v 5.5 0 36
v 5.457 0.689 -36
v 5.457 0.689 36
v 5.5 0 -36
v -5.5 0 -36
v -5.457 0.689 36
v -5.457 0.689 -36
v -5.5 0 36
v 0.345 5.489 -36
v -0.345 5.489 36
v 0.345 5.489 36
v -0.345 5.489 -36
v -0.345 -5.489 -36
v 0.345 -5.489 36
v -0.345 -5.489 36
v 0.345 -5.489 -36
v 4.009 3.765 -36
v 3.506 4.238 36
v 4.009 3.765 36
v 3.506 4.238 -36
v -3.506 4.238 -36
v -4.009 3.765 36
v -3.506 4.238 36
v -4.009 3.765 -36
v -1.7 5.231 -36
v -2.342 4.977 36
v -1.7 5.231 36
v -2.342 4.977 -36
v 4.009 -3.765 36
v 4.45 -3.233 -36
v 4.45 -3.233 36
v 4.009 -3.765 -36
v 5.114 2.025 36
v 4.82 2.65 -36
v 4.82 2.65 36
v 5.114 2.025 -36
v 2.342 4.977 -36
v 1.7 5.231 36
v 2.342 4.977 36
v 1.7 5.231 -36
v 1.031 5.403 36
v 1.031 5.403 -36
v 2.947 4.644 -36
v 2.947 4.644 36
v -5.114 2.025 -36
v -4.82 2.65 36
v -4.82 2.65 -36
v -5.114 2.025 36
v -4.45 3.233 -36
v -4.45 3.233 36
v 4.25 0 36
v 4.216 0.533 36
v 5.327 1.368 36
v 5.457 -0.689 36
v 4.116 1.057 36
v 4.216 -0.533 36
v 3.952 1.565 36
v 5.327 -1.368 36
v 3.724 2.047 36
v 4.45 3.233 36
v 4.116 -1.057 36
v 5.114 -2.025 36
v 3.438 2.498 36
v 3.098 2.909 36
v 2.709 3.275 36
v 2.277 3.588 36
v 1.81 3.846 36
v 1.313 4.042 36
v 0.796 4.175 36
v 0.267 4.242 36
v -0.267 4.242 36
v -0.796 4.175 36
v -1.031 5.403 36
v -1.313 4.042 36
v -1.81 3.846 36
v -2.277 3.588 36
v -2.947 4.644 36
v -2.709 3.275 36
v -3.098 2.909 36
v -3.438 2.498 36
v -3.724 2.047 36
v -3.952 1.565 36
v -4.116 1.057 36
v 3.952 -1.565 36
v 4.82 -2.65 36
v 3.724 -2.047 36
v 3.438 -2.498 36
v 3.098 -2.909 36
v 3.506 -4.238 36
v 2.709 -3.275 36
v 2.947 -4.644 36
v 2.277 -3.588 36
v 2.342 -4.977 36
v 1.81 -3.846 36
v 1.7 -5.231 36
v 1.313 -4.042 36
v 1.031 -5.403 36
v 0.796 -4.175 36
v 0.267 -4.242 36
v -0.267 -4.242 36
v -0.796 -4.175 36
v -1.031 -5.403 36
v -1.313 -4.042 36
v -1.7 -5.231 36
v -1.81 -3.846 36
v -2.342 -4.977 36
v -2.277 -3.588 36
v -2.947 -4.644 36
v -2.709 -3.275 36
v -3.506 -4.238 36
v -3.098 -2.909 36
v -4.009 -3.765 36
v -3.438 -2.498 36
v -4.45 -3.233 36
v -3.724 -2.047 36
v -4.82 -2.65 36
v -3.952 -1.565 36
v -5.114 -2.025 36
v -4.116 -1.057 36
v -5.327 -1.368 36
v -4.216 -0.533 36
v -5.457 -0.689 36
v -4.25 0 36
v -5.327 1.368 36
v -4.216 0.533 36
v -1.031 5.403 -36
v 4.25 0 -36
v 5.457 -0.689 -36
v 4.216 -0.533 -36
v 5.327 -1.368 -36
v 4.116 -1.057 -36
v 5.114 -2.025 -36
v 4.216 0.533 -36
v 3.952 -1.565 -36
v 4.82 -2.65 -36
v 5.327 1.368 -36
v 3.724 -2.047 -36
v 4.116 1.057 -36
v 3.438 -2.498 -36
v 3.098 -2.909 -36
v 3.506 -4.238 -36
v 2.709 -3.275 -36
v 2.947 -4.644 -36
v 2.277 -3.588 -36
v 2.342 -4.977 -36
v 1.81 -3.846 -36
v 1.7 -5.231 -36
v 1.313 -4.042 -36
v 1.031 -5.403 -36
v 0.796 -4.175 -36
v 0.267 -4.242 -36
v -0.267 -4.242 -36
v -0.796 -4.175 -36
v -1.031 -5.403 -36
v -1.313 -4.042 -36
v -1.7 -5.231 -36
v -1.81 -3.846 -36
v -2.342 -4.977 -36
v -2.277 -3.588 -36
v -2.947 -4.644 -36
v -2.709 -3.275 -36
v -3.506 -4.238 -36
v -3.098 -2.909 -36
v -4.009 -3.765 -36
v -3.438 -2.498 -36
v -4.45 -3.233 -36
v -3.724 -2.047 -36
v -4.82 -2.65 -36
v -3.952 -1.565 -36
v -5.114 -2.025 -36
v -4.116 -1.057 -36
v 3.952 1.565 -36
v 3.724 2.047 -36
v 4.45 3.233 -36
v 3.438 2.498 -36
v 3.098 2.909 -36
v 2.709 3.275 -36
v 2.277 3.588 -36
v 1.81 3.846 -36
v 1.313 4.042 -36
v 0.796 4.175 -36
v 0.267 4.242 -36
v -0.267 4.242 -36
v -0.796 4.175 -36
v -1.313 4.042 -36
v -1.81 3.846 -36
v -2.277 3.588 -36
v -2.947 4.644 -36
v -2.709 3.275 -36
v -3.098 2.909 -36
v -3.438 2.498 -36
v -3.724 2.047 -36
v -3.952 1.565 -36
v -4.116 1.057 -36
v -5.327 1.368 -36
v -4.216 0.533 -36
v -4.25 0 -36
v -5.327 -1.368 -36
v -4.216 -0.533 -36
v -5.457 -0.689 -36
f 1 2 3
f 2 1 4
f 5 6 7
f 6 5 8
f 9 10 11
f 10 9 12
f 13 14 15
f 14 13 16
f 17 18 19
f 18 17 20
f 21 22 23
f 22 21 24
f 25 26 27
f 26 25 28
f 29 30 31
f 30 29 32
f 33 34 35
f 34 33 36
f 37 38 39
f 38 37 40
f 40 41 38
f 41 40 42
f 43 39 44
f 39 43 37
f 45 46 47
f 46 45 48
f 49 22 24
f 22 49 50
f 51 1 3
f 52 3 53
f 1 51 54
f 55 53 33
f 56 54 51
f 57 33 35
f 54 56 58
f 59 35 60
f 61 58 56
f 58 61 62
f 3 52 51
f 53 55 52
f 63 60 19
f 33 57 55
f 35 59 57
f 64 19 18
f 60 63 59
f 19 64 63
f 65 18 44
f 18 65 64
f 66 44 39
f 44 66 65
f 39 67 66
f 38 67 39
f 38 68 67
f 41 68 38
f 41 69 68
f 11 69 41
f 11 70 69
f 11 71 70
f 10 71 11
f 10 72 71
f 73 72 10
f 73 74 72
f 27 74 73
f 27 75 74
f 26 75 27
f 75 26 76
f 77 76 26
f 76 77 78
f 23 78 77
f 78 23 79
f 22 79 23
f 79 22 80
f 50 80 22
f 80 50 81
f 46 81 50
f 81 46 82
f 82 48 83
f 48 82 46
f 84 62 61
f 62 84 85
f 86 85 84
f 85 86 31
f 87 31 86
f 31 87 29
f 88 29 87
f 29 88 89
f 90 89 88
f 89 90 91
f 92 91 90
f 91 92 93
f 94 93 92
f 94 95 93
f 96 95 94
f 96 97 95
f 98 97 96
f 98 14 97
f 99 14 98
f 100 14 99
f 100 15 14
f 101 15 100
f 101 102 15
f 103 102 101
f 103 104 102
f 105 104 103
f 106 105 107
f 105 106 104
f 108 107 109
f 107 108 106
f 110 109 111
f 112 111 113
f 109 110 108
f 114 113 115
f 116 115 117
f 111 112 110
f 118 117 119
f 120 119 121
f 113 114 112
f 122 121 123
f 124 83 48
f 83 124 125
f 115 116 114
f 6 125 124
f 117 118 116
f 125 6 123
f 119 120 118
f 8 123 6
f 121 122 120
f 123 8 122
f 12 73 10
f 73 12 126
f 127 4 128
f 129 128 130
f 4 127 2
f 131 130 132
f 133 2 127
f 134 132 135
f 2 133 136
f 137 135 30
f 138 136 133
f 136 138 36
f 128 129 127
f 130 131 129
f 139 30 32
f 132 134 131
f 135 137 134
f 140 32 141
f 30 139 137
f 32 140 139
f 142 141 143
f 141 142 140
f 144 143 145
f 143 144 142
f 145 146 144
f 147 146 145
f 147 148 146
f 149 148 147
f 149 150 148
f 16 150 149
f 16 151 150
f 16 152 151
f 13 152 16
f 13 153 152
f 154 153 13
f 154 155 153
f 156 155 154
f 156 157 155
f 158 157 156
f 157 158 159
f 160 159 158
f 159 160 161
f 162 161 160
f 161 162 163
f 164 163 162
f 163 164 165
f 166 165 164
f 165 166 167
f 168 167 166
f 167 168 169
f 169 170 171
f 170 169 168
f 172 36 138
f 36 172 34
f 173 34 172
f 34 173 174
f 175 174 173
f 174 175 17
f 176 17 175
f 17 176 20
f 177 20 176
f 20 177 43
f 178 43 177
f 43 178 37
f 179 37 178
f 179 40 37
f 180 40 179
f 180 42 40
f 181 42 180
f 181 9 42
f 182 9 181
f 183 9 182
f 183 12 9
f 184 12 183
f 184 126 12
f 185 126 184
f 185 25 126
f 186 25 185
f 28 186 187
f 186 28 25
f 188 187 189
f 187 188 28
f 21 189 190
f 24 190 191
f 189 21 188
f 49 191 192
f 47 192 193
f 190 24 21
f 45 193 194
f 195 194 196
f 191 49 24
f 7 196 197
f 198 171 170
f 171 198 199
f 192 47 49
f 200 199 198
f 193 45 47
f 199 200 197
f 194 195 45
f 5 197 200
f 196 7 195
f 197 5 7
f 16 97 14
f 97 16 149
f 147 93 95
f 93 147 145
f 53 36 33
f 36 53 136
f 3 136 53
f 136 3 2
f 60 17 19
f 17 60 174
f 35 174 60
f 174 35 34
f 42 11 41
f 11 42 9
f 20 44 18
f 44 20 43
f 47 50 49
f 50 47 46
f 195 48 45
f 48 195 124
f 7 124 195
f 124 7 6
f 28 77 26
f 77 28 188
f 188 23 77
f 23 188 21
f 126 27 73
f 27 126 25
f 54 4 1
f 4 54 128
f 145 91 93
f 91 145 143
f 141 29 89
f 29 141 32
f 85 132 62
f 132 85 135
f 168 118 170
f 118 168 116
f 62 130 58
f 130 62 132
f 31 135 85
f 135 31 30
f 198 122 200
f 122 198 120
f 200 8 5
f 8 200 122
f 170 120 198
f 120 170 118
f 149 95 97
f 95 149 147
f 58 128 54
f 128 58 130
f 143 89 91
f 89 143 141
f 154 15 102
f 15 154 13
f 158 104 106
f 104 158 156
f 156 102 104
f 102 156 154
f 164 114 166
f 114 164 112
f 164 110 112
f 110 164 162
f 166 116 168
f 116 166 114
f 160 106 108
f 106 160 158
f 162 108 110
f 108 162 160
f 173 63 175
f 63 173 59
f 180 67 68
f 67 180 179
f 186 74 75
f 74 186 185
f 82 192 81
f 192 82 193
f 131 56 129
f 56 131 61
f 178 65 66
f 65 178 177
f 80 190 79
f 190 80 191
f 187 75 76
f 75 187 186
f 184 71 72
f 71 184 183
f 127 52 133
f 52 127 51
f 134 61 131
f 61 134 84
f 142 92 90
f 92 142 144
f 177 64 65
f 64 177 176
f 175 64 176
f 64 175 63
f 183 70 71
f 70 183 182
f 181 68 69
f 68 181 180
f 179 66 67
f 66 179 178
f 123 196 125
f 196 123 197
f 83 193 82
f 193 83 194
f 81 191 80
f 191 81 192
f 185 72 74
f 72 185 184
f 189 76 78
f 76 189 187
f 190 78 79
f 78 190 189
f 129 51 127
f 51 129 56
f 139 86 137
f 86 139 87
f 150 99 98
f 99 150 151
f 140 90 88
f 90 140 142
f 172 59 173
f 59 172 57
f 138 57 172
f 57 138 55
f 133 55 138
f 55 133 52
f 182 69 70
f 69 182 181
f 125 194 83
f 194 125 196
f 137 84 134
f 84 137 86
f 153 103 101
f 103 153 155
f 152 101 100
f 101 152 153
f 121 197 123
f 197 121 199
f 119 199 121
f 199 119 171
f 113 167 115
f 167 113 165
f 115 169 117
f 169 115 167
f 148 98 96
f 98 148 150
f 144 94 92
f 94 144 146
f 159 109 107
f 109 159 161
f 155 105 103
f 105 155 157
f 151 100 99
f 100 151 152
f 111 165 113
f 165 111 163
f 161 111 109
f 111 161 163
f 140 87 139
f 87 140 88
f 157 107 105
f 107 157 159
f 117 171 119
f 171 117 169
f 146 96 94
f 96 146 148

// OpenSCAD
$fn = 50;


difference() {
	union() {
		translate(v = [0, 0, -36.0000000000]) {
			cylinder(h = 72, r = 5.5000000000);
		}
	}
	union() {
		translate(v = [0, 0, -100.0000000000]) {
			cylinder(h = 200, r = 4.2500000000);
		}
	}
}
